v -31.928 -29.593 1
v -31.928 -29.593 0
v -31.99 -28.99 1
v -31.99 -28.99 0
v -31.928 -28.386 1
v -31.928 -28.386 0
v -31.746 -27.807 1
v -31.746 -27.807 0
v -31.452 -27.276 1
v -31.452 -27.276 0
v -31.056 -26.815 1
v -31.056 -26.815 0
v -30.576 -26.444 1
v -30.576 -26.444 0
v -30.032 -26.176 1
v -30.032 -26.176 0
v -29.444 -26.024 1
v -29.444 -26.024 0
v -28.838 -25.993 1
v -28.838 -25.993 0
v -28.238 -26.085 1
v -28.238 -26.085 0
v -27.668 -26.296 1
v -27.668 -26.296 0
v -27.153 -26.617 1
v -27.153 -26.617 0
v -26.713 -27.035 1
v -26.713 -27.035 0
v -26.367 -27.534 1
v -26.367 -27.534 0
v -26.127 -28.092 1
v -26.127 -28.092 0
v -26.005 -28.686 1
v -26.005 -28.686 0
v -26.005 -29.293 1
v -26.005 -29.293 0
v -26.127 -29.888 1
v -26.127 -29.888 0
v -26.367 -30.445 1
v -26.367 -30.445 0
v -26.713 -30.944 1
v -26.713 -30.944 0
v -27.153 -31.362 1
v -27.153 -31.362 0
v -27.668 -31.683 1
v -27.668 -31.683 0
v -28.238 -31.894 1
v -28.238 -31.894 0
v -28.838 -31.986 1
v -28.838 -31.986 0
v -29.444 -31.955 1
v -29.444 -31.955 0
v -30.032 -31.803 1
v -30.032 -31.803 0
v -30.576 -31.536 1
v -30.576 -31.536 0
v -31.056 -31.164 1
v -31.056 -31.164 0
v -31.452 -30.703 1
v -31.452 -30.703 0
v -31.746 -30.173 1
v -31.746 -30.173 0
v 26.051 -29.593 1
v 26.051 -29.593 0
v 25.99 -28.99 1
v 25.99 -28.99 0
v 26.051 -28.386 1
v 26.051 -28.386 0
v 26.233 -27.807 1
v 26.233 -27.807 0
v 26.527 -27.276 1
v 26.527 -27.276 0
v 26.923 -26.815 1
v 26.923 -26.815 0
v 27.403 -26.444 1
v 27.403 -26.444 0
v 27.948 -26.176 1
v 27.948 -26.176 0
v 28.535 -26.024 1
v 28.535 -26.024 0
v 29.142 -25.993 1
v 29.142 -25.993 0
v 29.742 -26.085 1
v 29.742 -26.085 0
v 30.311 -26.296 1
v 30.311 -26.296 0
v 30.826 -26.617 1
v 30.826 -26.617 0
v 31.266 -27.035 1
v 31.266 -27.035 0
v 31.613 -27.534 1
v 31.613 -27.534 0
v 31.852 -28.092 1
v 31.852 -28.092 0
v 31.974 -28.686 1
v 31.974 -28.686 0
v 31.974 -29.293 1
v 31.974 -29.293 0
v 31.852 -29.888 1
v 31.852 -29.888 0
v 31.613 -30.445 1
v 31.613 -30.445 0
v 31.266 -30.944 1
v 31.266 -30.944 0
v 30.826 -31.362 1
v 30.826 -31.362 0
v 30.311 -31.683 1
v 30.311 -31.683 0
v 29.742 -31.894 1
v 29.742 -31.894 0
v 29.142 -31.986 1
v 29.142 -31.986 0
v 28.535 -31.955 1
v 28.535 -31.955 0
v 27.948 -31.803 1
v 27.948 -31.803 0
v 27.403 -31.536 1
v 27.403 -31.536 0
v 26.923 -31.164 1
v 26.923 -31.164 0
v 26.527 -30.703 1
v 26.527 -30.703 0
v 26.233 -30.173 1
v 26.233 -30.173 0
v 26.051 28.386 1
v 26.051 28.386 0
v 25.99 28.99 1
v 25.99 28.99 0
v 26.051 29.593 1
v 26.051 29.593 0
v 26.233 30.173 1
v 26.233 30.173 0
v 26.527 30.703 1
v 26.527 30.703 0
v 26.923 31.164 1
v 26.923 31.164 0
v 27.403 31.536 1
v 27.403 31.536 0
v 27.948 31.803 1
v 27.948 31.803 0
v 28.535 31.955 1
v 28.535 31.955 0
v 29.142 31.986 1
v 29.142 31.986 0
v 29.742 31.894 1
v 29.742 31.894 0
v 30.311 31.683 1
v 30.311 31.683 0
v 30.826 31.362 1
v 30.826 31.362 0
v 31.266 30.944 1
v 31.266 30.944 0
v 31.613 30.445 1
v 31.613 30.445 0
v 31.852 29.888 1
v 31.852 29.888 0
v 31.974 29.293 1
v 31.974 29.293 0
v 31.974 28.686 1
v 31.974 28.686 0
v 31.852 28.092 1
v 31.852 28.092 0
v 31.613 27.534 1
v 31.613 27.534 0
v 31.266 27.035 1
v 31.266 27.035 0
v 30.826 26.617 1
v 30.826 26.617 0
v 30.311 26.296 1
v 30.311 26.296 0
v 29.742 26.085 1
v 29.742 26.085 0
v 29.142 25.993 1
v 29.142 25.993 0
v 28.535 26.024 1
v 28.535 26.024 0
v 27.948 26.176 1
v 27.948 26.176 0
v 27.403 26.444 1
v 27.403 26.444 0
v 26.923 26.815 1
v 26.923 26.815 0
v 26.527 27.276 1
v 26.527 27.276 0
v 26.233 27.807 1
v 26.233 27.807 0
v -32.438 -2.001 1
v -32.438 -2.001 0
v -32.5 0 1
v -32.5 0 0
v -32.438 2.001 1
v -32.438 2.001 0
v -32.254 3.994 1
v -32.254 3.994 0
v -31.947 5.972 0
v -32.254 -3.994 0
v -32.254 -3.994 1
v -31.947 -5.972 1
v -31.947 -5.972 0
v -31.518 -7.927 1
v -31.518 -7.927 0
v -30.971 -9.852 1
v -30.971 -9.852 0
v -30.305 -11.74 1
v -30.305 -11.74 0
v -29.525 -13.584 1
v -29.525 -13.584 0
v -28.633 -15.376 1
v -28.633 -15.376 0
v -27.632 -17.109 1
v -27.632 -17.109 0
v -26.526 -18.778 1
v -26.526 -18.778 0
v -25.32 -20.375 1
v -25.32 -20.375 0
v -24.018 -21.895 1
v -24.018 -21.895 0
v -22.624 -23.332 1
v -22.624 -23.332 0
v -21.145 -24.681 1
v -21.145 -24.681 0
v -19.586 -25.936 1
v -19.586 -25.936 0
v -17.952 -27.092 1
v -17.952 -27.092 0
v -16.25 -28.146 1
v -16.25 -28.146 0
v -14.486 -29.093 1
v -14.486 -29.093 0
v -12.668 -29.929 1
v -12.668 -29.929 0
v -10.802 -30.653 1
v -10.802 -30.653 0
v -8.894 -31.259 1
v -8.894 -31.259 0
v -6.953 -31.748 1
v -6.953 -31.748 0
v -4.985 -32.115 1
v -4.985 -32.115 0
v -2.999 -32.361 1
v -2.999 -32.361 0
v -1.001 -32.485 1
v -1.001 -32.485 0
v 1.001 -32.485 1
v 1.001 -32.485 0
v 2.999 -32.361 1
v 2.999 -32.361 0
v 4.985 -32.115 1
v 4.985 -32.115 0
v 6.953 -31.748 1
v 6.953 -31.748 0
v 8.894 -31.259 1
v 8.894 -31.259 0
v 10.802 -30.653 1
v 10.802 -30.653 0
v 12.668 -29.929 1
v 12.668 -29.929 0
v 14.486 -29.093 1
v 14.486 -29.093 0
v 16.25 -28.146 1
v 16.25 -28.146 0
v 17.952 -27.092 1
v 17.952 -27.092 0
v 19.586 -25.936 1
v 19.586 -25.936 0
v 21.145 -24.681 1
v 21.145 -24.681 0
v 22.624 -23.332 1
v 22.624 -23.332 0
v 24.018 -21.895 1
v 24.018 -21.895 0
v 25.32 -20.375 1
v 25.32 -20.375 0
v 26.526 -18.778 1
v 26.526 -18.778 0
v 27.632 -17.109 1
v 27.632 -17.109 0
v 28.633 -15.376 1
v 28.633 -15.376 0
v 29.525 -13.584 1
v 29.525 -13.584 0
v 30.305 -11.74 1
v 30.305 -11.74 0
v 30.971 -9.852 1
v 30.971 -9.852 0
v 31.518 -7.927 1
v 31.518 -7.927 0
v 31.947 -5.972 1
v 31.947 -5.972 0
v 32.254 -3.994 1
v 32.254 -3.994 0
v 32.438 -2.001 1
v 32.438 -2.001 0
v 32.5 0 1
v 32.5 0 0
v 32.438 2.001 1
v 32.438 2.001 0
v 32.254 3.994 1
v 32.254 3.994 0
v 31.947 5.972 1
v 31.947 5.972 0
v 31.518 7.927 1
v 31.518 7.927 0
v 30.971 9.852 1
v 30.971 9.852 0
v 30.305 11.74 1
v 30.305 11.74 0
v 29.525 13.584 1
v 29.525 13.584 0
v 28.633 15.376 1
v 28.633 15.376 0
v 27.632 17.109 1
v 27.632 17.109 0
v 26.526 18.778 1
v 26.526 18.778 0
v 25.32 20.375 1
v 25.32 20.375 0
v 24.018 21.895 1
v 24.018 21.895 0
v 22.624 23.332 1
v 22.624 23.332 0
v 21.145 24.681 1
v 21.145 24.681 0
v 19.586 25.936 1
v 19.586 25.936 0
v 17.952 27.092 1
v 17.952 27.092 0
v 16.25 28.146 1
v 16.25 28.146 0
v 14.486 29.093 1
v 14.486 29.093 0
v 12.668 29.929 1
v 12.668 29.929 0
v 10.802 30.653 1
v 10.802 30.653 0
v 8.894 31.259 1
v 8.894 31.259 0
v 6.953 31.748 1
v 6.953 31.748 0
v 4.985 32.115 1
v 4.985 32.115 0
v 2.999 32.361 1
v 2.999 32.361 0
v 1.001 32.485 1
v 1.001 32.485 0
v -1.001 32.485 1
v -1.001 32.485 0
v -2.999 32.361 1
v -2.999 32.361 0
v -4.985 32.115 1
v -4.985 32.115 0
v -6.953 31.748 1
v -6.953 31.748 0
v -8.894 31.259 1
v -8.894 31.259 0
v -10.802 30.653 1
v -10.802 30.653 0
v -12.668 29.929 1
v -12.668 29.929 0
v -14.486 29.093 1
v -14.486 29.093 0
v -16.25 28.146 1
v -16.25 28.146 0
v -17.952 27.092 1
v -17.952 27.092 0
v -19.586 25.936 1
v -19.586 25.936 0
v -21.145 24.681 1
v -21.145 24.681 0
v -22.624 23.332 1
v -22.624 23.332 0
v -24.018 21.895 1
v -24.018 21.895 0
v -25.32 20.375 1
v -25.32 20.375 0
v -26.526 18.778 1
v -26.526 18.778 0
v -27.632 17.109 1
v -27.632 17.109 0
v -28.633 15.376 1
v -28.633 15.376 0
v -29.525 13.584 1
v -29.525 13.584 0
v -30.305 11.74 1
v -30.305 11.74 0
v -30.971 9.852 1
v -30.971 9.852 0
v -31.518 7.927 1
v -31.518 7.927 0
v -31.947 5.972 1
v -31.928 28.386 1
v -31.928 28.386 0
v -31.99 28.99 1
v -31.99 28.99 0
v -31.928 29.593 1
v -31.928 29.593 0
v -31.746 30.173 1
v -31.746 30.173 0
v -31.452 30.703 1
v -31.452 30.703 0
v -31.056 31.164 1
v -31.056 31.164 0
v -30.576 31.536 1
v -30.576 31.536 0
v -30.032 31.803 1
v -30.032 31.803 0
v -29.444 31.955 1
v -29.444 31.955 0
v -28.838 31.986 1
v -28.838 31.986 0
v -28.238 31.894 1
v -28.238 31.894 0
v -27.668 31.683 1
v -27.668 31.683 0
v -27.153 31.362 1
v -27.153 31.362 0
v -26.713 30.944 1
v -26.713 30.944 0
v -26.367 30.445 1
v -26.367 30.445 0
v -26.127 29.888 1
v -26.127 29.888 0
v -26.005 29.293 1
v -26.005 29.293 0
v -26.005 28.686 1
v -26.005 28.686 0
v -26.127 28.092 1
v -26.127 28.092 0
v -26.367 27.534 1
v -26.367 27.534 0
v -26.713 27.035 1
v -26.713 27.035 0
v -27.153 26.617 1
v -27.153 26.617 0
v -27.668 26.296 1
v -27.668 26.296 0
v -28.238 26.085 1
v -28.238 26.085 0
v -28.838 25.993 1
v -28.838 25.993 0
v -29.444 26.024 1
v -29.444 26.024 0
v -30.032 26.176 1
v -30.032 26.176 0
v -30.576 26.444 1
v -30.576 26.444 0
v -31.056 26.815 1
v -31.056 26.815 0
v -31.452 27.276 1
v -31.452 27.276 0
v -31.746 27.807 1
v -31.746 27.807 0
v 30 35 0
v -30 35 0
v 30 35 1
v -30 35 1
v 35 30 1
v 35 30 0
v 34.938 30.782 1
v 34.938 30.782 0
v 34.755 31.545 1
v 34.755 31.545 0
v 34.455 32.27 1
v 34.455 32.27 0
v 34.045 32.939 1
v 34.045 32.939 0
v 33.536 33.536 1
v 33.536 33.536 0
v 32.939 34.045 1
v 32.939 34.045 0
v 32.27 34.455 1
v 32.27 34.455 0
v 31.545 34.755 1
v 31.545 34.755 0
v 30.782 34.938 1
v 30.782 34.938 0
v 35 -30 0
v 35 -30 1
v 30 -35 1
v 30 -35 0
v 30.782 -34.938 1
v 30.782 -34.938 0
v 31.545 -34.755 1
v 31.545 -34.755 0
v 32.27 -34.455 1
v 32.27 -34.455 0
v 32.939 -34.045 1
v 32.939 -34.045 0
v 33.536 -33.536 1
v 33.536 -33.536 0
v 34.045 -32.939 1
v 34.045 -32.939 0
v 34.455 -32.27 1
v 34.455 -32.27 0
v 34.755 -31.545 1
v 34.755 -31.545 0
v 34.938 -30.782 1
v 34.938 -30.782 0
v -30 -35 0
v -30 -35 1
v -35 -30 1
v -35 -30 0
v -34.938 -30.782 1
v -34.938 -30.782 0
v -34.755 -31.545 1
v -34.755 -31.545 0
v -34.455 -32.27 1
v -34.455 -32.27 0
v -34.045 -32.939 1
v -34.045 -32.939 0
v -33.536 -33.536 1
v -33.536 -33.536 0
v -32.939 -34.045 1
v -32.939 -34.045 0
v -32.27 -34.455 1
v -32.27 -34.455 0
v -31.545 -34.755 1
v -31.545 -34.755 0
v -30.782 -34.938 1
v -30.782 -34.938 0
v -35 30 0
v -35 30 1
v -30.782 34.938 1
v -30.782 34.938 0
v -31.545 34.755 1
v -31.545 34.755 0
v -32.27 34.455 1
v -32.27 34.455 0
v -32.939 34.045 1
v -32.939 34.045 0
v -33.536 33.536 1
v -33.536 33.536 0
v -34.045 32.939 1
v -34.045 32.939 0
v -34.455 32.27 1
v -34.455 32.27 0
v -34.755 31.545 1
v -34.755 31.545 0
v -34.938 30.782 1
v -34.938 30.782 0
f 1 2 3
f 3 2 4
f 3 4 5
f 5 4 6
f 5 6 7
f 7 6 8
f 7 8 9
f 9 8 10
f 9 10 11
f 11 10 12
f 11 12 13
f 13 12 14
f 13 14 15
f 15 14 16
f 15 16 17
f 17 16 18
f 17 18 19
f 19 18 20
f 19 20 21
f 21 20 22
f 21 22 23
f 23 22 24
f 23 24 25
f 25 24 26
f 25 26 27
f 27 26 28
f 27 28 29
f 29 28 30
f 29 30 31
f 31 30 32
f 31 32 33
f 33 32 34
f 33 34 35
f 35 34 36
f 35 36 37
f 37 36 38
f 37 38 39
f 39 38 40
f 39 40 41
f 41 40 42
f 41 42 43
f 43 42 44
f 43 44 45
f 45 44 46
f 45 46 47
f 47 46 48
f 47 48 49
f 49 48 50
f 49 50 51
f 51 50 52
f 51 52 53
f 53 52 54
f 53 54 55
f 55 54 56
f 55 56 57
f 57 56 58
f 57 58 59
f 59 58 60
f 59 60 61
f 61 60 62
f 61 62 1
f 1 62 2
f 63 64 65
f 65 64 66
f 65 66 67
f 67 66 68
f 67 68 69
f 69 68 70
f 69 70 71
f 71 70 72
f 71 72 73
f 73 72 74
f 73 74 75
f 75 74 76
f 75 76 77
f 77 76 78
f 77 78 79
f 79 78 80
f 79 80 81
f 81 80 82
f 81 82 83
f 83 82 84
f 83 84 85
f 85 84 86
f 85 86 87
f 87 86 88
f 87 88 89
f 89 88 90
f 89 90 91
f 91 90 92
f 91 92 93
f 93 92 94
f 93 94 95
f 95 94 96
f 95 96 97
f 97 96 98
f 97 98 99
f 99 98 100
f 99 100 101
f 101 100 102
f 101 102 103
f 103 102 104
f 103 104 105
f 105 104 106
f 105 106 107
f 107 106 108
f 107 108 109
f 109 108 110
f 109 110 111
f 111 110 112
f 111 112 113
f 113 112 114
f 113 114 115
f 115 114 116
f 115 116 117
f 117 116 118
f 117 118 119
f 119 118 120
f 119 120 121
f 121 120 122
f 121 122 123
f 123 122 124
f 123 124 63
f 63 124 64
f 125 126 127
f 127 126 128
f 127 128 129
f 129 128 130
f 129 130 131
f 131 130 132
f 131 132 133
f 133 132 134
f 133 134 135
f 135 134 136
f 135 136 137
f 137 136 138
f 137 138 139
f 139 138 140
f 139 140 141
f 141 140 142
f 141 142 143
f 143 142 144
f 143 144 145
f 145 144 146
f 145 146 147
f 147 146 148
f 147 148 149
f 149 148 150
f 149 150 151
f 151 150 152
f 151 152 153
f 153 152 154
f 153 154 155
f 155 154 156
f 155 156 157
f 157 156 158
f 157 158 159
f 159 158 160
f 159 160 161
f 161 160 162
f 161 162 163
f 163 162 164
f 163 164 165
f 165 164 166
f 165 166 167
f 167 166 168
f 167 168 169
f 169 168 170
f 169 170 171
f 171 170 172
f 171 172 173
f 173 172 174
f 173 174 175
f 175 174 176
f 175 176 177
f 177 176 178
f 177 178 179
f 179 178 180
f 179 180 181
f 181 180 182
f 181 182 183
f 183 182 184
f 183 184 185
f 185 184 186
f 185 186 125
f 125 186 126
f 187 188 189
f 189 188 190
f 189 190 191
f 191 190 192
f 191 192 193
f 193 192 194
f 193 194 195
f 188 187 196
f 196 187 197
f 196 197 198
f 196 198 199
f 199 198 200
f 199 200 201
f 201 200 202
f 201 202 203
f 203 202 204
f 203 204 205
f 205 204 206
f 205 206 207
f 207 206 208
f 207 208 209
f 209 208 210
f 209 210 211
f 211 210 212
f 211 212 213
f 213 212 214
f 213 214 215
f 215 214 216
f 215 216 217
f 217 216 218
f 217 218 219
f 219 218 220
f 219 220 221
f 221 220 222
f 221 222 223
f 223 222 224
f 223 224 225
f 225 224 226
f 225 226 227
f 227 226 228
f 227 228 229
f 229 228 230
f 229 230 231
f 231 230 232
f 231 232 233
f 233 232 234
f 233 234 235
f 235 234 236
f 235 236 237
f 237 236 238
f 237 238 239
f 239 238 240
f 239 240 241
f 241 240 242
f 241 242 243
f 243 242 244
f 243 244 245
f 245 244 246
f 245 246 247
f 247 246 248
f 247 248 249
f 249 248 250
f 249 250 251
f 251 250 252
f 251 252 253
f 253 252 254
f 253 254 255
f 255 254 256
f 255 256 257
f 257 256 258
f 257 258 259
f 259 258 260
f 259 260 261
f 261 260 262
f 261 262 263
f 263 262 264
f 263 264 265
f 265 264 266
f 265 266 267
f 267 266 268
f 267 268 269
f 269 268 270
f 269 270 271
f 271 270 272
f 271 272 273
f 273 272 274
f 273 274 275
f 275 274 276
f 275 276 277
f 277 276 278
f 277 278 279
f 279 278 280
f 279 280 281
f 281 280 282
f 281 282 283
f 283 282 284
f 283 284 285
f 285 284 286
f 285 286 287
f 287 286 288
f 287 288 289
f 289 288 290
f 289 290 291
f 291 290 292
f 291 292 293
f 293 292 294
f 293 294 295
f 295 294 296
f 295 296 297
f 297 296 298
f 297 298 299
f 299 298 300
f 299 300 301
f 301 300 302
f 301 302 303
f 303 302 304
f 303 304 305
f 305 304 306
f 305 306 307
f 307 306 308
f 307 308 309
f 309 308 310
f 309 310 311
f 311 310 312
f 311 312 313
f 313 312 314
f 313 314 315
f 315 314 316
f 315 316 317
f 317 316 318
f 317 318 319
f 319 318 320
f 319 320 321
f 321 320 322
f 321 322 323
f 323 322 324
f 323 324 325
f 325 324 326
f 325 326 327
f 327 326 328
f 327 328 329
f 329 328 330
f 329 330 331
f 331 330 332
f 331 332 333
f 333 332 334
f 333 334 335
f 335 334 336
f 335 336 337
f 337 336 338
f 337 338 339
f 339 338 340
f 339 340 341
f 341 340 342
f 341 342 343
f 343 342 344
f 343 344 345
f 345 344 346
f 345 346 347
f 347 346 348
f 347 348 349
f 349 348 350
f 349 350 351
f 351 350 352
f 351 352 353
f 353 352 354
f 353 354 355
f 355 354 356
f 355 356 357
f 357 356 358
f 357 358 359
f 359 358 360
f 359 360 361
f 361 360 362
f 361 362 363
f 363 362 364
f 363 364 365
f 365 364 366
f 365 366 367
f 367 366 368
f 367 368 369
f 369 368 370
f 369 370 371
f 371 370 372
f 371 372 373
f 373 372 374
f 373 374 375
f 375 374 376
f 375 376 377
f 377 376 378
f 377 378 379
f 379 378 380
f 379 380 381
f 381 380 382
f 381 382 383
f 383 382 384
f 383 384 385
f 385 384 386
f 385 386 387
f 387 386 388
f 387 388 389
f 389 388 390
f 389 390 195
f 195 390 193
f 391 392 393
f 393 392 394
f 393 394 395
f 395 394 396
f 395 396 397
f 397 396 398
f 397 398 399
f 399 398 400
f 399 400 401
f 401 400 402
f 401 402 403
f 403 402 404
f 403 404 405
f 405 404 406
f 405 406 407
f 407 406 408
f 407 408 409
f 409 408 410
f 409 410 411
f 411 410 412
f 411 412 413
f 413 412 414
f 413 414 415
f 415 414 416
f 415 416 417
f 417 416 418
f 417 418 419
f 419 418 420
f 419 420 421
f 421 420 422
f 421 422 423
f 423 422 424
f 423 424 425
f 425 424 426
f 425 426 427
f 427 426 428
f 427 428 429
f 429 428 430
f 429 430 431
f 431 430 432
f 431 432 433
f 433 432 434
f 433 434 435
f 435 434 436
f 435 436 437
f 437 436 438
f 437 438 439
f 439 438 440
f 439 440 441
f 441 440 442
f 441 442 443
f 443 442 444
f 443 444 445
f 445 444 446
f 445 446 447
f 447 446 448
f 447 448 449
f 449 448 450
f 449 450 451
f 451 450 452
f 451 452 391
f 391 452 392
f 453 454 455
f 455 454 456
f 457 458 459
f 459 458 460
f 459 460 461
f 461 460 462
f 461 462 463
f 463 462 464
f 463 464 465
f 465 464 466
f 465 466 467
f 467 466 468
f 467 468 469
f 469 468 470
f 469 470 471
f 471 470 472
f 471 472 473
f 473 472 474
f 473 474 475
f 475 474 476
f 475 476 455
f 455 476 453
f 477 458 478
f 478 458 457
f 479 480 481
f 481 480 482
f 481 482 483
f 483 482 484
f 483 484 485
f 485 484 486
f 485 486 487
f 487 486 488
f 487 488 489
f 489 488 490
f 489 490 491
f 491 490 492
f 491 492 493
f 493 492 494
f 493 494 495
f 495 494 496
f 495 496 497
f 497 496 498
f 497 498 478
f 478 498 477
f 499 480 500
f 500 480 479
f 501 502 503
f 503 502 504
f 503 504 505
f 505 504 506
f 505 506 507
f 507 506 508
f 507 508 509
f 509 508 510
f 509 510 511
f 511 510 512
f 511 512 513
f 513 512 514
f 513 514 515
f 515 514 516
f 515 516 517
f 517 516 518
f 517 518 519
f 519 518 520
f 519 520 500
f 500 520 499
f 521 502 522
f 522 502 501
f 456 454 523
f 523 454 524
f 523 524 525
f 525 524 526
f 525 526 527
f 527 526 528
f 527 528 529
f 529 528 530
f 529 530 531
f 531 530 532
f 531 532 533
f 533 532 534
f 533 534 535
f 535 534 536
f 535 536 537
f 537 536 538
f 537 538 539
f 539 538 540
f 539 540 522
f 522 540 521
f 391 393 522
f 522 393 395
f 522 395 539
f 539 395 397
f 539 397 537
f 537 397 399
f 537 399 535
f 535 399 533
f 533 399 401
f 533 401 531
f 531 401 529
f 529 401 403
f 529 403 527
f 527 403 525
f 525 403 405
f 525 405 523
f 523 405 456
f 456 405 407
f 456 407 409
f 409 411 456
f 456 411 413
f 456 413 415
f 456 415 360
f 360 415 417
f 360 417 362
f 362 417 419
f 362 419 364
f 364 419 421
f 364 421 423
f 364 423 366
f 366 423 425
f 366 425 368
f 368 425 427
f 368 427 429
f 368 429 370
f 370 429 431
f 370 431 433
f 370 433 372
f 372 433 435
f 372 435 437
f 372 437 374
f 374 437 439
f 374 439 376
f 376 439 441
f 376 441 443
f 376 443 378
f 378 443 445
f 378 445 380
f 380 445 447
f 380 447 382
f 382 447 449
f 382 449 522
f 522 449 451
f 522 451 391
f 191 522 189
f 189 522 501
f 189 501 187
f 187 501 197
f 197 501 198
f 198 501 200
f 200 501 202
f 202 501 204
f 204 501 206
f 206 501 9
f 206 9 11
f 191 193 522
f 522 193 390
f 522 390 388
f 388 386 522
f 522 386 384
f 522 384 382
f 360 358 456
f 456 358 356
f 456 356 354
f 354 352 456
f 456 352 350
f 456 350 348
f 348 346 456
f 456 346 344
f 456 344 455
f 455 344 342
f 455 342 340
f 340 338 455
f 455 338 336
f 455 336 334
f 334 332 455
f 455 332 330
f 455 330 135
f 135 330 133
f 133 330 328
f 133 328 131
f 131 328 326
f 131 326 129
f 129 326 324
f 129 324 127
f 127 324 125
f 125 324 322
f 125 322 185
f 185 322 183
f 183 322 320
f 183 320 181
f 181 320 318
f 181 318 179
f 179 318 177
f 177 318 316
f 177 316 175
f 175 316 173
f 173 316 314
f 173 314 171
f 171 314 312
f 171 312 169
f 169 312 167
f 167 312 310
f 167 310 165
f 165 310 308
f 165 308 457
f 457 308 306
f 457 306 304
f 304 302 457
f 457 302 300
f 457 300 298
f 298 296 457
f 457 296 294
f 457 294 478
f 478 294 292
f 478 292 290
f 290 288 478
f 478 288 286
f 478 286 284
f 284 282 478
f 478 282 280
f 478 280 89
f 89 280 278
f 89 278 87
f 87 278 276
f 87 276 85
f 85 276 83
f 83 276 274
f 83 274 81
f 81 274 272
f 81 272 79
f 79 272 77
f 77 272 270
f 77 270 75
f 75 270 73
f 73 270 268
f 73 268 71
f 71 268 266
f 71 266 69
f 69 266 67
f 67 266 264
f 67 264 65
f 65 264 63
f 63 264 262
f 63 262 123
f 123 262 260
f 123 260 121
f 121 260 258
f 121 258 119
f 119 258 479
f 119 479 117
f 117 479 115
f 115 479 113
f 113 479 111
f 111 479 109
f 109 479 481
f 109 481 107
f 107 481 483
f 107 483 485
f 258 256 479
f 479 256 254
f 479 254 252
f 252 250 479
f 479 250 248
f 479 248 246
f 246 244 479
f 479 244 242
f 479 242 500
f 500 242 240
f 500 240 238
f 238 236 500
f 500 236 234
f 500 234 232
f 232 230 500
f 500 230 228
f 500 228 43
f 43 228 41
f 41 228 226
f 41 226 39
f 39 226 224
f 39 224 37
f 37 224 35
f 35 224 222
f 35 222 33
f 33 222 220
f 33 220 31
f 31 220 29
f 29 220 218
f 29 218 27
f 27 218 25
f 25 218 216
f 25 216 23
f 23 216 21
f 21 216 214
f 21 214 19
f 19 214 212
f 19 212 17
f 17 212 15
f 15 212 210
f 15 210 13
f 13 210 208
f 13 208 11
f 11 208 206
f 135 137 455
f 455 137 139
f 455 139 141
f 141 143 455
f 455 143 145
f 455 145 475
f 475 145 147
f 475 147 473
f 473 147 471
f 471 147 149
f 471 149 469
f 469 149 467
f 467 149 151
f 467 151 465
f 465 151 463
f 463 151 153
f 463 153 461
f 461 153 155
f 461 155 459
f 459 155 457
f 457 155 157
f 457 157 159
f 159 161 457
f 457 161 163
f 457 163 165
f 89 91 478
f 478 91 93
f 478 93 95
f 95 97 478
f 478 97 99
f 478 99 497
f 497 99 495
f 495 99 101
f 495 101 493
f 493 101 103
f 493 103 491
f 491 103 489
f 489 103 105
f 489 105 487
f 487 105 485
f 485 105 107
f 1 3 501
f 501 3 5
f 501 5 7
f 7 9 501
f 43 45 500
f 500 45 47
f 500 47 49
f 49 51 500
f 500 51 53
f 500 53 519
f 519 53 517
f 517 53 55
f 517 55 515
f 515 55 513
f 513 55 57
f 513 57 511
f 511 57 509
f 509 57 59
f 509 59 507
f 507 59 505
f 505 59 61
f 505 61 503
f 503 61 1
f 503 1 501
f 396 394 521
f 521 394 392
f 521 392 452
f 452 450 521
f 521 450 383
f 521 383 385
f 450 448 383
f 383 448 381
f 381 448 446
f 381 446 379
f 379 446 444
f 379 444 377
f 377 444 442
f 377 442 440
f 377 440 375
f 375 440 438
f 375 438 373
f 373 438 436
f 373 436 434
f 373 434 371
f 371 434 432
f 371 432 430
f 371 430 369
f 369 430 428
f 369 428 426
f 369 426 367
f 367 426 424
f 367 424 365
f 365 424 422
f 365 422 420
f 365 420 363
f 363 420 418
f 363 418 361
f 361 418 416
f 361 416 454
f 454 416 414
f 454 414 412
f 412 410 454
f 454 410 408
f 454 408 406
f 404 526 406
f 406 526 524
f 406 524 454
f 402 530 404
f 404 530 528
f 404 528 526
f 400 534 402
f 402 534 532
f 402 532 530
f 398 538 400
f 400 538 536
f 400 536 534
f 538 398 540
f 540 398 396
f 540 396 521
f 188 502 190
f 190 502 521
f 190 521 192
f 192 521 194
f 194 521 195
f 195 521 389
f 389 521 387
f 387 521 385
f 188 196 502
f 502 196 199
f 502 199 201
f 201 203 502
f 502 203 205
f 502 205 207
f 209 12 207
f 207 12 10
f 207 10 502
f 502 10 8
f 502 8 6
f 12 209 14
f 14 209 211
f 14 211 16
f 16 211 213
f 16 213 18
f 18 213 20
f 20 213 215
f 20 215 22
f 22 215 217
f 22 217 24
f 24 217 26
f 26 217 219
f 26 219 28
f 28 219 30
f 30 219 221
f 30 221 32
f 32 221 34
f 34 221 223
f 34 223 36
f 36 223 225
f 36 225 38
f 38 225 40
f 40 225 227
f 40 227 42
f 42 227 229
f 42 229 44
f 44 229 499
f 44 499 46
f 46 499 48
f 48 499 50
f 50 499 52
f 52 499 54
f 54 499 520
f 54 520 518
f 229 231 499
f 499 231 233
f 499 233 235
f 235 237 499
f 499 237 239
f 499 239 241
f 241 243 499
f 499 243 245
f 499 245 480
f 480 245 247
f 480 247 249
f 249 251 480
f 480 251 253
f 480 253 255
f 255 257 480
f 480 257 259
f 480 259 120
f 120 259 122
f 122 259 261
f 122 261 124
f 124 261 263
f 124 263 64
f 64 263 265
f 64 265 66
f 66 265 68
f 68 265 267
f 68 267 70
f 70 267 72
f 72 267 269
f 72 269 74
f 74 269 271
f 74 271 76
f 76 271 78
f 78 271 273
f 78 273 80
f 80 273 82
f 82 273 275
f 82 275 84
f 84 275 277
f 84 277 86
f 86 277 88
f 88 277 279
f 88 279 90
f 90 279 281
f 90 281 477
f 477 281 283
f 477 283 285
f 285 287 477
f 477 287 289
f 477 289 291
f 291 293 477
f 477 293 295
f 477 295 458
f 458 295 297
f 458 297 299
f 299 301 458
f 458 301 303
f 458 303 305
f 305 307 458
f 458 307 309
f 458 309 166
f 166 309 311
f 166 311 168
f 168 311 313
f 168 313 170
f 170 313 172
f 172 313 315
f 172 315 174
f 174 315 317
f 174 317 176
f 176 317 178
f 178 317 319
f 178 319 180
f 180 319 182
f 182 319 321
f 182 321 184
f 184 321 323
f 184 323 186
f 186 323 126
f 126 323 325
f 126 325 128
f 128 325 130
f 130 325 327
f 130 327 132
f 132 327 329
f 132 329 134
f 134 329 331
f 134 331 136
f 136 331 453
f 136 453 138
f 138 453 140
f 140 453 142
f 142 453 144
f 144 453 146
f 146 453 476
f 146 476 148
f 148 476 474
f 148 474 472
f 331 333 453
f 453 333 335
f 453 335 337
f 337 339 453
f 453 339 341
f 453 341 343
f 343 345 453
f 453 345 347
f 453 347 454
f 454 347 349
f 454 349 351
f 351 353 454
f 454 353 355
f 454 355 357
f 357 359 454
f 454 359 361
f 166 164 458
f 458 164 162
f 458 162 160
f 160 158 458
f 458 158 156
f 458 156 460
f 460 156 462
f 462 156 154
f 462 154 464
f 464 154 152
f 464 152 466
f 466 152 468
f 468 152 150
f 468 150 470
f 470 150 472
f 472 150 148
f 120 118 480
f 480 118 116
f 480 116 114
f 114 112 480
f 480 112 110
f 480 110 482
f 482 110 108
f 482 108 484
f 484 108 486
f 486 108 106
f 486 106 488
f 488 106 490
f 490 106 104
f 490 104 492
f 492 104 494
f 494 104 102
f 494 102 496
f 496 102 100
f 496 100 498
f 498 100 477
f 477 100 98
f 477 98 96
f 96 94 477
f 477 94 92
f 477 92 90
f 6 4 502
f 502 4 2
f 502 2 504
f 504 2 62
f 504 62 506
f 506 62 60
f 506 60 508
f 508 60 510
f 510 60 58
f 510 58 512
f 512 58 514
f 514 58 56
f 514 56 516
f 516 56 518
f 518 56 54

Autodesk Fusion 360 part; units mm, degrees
sketch "Sketch1" plane through (0, 0, 0) normal (0, 0, 1) x (1, 0, 0)
  line L0 (30, -35) -> (-30, -35)
  line L1 (-35, -30) -> (-35, 30)
  line L2 (-30, 35) -> (30, 35)
  line L3 (35, 30) -> (35, -30)
  line L4 (35, -35) -> (-35, 35) construction
  line L5 (-35, -35) -> (35, 35) construction
  circle A0 centre (0, 0) radius 32.5
  circle A1 centre (-28.9896, 28.9896) radius 3
  arc A2 (-30, 35) -> (-35, 30) centre (-30, 30) ccw
  arc A3 (35, 30) -> (30, 35) centre (30, 30) ccw
  arc A4 (30, -35) -> (35, -30) centre (30, -30) ccw
  arc A5 (-35, -30) -> (-30, -35) centre (-30, -30) ccw
  line L6 (0, 35) -> (0, -35) construction
  line L7 (-35, 0) -> (35, 0) construction
  circle A6 centre (28.9896, 28.9896) radius 3
  circle A7 centre (-28.9896, -28.9896) radius 3
  circle A8 centre (28.9896, -28.9896) radius 3
  dimension "d1" = 70
  dimension "d2" = 70
  dimension "d3" = 65
  dimension "d4" = 6
  dimension "d5" = 8.5
  dimension "d6" = 5
  dimension "d7" = 5
  dimension "d8" = 5
  dimension "d9" = 5
extrude "Extrude1" add sketch "Sketch1" along normal blind 1
